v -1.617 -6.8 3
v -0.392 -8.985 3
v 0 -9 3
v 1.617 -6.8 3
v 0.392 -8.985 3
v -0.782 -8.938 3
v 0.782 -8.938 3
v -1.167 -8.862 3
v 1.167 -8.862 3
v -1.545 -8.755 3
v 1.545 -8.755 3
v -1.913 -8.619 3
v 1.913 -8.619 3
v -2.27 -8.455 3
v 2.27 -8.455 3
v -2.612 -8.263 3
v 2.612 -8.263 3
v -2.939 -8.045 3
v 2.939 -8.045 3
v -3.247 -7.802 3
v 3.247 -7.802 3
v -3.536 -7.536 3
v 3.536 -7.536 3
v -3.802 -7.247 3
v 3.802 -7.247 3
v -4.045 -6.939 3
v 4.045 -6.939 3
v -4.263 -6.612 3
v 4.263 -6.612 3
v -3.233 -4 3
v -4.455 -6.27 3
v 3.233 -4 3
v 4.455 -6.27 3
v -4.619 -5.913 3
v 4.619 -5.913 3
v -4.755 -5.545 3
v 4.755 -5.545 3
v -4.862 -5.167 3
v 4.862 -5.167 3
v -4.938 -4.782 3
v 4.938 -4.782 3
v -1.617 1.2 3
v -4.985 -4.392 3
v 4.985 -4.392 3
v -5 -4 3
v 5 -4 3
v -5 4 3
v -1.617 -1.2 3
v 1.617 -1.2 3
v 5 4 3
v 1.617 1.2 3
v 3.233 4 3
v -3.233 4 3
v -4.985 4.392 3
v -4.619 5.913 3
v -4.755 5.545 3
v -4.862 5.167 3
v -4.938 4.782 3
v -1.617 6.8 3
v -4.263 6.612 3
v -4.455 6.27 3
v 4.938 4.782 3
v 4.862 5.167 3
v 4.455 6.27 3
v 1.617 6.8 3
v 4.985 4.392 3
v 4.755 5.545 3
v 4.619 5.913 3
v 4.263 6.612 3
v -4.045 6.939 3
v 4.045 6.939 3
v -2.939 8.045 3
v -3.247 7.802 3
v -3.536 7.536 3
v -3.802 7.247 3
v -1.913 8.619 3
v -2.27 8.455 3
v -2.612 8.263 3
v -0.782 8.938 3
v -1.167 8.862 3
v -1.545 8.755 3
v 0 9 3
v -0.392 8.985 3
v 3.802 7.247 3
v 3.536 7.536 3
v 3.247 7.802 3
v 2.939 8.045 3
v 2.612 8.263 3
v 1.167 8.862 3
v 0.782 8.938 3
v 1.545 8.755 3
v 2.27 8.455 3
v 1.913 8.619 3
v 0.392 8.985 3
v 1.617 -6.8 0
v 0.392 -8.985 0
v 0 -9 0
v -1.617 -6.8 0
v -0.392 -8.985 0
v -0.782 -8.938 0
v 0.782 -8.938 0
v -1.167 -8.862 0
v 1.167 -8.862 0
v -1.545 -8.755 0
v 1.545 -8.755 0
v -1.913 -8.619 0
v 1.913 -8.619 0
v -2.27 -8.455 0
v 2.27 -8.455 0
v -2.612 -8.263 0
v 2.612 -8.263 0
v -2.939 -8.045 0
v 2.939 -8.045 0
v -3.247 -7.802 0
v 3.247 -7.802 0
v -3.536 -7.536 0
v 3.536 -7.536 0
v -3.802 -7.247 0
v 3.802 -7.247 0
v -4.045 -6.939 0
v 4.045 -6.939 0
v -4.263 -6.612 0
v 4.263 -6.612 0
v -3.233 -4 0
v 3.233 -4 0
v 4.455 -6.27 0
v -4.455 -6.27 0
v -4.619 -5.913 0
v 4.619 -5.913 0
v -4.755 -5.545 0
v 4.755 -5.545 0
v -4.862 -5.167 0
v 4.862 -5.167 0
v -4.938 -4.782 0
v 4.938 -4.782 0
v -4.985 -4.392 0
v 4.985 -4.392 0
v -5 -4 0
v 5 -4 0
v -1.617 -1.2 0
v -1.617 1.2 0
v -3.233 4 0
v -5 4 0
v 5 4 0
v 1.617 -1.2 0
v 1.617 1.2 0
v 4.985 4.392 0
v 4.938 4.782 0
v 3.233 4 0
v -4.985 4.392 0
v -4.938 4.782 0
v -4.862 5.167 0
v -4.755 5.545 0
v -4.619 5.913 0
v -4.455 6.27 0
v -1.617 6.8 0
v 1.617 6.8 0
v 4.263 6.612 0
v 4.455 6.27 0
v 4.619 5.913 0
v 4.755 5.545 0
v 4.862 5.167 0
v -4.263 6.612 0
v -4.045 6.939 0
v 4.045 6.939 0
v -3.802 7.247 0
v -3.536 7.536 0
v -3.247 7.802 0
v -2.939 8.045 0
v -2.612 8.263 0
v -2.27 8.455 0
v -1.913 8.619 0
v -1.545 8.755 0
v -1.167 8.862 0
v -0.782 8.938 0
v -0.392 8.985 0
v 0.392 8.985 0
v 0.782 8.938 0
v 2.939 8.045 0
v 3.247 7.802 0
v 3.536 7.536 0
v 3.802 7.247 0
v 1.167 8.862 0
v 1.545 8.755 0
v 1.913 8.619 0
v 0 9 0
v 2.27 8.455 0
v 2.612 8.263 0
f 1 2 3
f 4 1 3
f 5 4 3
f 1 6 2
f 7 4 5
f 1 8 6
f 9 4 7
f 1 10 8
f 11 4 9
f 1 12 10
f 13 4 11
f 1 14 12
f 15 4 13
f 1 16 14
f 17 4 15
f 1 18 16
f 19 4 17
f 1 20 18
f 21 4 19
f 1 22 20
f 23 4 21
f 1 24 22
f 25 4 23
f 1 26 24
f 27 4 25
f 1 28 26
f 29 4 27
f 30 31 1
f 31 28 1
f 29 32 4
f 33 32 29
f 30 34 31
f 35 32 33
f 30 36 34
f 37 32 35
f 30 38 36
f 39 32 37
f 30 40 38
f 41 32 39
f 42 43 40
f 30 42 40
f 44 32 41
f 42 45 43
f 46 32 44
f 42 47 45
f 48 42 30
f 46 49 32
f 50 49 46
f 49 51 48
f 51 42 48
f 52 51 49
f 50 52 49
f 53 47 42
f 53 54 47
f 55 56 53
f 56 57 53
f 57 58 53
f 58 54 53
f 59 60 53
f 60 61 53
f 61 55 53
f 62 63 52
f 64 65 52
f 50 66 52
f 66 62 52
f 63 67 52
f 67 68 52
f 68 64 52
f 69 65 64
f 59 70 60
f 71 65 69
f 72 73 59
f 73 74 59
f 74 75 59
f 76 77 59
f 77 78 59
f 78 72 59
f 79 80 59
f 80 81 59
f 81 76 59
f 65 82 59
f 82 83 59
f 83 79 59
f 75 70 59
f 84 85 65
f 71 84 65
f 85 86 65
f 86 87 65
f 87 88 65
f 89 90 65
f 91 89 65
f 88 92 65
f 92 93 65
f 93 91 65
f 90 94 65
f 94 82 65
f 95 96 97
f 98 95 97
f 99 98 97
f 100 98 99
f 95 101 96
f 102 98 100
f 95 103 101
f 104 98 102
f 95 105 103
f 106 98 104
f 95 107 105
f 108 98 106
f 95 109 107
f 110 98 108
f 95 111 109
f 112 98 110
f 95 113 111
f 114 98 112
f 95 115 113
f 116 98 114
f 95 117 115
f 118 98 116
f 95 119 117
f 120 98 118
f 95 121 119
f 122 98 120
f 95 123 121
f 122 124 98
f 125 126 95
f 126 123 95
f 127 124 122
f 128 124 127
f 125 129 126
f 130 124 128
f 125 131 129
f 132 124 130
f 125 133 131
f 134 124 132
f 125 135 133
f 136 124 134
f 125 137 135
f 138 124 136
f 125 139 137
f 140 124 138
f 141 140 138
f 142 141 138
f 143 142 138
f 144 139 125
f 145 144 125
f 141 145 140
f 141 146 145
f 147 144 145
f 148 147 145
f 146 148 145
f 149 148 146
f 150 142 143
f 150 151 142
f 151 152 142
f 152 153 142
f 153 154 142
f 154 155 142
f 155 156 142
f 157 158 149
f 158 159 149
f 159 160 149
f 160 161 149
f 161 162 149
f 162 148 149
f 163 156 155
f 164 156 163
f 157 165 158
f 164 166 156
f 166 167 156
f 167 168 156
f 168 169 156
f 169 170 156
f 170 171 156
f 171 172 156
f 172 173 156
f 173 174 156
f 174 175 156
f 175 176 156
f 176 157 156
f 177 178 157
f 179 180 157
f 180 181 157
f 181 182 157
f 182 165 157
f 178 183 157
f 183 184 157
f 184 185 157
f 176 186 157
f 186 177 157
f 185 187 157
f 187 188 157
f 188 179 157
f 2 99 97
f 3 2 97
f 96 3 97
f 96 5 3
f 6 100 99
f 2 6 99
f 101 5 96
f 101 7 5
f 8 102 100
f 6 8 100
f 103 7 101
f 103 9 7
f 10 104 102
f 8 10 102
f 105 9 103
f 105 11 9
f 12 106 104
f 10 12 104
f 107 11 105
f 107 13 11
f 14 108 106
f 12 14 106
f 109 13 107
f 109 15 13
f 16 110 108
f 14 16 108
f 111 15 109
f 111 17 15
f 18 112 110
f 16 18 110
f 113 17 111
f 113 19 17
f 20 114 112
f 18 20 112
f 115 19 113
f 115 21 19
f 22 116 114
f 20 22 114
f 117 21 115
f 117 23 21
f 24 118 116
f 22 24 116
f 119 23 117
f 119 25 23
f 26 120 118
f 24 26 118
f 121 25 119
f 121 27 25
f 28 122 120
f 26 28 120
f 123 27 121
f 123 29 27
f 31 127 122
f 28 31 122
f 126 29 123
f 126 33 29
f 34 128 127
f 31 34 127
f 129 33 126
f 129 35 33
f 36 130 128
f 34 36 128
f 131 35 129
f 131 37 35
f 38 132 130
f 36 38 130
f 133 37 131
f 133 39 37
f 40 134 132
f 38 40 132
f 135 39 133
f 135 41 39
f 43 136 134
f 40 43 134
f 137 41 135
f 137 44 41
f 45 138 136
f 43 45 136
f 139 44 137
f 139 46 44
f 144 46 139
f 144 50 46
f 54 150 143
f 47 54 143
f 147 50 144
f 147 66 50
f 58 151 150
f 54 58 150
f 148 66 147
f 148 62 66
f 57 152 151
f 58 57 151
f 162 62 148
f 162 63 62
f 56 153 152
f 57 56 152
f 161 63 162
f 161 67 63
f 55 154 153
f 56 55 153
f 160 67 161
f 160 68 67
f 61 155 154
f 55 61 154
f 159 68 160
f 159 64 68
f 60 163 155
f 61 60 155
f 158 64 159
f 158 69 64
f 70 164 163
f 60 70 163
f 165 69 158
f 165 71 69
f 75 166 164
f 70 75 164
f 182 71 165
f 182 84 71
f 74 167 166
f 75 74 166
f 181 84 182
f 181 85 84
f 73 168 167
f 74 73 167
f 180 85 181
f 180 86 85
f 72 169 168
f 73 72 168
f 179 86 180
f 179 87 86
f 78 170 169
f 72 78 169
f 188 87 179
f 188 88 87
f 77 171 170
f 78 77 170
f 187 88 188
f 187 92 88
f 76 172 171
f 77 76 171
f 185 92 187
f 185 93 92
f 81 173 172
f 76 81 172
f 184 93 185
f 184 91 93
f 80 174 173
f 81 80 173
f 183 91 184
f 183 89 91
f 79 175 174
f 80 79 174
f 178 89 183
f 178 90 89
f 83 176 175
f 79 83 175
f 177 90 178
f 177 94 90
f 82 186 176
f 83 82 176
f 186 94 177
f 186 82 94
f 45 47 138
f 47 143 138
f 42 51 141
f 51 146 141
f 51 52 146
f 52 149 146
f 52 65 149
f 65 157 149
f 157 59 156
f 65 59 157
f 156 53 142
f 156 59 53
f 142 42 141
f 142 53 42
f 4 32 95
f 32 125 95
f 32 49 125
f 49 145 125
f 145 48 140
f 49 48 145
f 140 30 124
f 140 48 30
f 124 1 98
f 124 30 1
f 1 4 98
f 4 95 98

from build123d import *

# Parameters (mm, degrees)
BOSS_EXTRUDE1_DEPTH = 3


with BuildPart() as part:
    # Sketch1 → Boss-Extrude1 (new body)
    with BuildSketch(Plane.XY):
        with BuildLine():
            Line((-5, -4), (-5, 4))
            ThreePointArc((-5, 4), (0, 9), (5, 4))
            Line((5, 4), (5, -4))
            ThreePointArc((5, -4), (0, -9), (-5, -4))
        make_face()
        Polygon((1.616580754, 1.2), (3.233161507, 4), (1.616580754, 6.8), (-1.616580754, 6.8), (-3.233161507, 4), (-1.616580754, 1.2), align=None, mode=Mode.SUBTRACT)
        Polygon((3.233161507, -4), (1.616580754, -1.2), (-1.616580754, -1.2), (-3.233161507, -4), (-1.616580754, -6.8), (1.616580754, -6.8), align=None, mode=Mode.SUBTRACT)
    extrude(amount=BOSS_EXTRUDE1_DEPTH)


solid = part.part
